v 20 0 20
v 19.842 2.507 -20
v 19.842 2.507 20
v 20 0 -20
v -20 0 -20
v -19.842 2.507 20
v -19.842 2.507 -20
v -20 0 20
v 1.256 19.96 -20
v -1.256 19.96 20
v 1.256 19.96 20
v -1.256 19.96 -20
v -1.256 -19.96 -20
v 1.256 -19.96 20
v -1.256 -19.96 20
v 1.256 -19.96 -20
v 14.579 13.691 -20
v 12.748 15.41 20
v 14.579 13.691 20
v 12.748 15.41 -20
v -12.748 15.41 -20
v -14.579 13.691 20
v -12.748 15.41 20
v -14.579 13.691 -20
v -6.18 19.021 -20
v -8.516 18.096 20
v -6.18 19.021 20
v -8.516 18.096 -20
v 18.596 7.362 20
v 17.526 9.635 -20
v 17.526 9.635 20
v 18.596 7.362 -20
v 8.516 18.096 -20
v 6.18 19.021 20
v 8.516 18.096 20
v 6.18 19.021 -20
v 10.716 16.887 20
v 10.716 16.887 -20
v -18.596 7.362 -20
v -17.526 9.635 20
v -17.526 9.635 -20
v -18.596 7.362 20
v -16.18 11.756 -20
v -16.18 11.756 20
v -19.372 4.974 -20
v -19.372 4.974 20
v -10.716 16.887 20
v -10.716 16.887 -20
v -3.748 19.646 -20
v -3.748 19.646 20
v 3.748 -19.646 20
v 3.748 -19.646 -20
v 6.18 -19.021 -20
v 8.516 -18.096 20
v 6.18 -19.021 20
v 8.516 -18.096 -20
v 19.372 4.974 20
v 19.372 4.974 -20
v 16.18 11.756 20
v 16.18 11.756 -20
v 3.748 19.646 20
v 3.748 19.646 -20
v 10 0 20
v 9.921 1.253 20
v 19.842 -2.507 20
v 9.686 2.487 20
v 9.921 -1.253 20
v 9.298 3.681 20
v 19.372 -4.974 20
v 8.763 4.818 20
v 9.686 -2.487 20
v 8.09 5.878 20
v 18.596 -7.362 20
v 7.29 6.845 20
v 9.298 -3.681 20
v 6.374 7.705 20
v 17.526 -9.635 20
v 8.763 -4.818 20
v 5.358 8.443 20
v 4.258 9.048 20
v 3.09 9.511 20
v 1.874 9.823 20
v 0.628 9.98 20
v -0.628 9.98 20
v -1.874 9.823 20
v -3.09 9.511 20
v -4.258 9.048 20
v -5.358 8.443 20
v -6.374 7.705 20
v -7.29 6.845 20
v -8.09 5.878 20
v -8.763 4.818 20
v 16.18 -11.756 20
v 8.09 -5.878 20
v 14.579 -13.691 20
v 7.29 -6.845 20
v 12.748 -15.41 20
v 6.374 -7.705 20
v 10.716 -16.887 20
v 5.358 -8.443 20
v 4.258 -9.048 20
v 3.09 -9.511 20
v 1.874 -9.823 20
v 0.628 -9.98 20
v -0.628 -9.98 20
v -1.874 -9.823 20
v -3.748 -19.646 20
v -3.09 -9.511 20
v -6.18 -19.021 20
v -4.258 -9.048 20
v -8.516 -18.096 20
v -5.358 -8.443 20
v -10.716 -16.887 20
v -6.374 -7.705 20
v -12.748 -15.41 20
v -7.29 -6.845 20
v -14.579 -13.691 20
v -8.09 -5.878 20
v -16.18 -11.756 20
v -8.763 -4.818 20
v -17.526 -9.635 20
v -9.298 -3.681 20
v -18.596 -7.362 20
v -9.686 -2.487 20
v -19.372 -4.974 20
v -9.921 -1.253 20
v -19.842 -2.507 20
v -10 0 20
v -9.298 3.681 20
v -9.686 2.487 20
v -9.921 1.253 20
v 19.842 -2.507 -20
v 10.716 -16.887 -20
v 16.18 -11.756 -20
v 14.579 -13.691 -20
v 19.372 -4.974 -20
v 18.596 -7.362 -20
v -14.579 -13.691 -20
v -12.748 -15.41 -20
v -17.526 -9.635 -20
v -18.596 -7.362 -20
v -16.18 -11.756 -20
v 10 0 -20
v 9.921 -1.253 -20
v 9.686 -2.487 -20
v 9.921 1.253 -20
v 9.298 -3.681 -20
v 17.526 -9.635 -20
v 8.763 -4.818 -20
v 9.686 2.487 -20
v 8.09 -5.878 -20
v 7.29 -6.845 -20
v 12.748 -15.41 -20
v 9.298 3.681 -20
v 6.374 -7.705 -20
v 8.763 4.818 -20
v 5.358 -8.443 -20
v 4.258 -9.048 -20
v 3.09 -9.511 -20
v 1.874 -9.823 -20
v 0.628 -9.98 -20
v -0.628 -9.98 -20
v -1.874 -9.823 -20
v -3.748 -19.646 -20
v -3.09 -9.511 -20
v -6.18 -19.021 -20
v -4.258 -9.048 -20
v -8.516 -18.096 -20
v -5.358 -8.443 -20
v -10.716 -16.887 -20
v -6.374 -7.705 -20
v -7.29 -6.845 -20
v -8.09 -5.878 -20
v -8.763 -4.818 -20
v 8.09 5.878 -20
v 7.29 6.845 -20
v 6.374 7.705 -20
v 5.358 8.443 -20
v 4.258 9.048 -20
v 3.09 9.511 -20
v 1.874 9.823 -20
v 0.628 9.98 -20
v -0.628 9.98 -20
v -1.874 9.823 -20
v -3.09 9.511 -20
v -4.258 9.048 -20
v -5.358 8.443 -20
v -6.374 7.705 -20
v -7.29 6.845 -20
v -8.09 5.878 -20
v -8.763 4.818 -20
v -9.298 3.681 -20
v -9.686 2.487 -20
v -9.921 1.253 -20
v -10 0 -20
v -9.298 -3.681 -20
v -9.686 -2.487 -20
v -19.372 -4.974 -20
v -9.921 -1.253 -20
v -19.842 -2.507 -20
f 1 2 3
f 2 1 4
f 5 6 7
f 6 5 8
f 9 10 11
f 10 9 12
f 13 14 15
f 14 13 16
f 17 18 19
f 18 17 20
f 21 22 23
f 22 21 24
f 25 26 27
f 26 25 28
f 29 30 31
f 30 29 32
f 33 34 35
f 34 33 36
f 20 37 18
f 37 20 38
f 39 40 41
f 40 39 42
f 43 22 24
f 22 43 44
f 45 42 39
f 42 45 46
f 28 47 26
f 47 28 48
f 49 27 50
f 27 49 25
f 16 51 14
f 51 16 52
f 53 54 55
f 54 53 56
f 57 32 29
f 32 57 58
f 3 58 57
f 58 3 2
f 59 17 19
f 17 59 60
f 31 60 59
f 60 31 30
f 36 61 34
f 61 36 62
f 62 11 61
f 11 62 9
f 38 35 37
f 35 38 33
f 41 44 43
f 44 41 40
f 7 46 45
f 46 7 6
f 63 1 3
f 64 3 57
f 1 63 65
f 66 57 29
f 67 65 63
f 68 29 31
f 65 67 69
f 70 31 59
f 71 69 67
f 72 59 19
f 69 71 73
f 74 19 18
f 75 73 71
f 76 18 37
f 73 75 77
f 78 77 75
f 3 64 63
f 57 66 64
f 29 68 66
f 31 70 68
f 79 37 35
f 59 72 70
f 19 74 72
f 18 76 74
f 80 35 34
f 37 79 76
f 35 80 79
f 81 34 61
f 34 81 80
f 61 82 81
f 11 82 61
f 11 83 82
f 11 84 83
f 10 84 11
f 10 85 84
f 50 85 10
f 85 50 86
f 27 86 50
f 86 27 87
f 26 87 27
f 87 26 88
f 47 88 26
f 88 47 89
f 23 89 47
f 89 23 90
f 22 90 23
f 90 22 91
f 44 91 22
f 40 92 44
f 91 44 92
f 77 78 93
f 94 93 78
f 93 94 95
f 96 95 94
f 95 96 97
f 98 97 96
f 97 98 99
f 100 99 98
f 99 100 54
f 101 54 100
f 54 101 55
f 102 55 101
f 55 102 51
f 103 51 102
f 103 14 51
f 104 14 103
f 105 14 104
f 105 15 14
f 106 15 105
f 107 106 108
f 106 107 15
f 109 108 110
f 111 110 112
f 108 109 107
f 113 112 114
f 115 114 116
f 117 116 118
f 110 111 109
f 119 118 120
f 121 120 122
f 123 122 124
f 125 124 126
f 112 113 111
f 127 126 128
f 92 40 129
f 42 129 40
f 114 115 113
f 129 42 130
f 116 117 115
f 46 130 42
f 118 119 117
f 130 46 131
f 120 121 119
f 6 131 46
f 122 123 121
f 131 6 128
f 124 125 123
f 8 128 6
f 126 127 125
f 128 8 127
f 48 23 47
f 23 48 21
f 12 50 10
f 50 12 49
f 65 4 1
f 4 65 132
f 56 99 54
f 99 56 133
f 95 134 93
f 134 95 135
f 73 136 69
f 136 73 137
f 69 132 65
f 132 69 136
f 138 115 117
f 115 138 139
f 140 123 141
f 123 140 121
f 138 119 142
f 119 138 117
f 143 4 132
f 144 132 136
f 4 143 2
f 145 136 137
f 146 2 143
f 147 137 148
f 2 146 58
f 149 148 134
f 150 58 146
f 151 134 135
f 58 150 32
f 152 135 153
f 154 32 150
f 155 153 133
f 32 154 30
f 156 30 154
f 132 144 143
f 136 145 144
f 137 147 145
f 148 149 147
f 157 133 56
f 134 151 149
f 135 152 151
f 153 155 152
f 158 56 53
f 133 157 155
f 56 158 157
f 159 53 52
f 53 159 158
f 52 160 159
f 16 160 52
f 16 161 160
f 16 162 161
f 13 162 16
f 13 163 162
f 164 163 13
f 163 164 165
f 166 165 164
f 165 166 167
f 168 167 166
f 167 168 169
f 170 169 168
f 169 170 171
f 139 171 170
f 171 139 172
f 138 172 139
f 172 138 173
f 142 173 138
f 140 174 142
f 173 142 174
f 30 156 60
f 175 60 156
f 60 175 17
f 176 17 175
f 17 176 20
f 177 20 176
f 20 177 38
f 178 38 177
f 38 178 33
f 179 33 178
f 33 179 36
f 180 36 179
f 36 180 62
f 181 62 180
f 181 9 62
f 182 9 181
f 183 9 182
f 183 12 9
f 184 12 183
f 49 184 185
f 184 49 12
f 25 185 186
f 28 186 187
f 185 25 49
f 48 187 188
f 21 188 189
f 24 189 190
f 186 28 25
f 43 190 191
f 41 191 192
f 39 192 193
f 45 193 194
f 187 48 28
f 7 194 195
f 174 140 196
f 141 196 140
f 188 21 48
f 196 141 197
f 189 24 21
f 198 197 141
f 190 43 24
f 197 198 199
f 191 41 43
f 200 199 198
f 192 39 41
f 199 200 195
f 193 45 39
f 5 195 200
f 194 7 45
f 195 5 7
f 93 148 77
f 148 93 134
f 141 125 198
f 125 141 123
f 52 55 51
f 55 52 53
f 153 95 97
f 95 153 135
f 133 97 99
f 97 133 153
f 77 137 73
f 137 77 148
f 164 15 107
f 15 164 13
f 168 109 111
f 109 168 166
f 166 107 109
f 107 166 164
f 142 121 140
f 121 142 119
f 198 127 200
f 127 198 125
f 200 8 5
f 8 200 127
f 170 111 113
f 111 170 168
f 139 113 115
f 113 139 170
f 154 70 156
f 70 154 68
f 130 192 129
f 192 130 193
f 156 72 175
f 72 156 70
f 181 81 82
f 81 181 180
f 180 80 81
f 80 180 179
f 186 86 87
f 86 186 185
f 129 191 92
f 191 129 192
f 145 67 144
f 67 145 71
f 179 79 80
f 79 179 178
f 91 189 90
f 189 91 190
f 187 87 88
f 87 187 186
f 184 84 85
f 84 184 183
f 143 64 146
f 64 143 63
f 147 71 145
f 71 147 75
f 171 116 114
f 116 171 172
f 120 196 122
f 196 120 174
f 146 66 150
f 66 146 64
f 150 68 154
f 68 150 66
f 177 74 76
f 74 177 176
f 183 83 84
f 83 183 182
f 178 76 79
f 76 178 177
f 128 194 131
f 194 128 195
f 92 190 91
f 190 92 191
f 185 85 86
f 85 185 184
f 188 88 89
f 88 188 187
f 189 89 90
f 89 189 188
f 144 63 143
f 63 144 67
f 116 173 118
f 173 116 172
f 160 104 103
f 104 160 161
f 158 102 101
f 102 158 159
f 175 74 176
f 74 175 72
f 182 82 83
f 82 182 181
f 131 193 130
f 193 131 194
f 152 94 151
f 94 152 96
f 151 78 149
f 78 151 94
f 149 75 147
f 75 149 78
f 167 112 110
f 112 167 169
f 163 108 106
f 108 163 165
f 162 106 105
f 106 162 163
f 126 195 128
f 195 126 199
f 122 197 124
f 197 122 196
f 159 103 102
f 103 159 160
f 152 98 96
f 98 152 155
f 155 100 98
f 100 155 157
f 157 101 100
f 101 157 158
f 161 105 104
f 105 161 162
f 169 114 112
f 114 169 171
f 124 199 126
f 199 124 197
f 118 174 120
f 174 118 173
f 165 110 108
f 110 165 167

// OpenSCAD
$fn = 50;


difference() {
	union() {
		translate(v = [0, 0, -20.0000000000]) {
			cylinder(h = 40, r = 20.0000000000);
		}
	}
	union() {
		translate(v = [0, 0, -100.0000000000]) {
			cylinder(h = 200, r = 10);
		}
	}
}
